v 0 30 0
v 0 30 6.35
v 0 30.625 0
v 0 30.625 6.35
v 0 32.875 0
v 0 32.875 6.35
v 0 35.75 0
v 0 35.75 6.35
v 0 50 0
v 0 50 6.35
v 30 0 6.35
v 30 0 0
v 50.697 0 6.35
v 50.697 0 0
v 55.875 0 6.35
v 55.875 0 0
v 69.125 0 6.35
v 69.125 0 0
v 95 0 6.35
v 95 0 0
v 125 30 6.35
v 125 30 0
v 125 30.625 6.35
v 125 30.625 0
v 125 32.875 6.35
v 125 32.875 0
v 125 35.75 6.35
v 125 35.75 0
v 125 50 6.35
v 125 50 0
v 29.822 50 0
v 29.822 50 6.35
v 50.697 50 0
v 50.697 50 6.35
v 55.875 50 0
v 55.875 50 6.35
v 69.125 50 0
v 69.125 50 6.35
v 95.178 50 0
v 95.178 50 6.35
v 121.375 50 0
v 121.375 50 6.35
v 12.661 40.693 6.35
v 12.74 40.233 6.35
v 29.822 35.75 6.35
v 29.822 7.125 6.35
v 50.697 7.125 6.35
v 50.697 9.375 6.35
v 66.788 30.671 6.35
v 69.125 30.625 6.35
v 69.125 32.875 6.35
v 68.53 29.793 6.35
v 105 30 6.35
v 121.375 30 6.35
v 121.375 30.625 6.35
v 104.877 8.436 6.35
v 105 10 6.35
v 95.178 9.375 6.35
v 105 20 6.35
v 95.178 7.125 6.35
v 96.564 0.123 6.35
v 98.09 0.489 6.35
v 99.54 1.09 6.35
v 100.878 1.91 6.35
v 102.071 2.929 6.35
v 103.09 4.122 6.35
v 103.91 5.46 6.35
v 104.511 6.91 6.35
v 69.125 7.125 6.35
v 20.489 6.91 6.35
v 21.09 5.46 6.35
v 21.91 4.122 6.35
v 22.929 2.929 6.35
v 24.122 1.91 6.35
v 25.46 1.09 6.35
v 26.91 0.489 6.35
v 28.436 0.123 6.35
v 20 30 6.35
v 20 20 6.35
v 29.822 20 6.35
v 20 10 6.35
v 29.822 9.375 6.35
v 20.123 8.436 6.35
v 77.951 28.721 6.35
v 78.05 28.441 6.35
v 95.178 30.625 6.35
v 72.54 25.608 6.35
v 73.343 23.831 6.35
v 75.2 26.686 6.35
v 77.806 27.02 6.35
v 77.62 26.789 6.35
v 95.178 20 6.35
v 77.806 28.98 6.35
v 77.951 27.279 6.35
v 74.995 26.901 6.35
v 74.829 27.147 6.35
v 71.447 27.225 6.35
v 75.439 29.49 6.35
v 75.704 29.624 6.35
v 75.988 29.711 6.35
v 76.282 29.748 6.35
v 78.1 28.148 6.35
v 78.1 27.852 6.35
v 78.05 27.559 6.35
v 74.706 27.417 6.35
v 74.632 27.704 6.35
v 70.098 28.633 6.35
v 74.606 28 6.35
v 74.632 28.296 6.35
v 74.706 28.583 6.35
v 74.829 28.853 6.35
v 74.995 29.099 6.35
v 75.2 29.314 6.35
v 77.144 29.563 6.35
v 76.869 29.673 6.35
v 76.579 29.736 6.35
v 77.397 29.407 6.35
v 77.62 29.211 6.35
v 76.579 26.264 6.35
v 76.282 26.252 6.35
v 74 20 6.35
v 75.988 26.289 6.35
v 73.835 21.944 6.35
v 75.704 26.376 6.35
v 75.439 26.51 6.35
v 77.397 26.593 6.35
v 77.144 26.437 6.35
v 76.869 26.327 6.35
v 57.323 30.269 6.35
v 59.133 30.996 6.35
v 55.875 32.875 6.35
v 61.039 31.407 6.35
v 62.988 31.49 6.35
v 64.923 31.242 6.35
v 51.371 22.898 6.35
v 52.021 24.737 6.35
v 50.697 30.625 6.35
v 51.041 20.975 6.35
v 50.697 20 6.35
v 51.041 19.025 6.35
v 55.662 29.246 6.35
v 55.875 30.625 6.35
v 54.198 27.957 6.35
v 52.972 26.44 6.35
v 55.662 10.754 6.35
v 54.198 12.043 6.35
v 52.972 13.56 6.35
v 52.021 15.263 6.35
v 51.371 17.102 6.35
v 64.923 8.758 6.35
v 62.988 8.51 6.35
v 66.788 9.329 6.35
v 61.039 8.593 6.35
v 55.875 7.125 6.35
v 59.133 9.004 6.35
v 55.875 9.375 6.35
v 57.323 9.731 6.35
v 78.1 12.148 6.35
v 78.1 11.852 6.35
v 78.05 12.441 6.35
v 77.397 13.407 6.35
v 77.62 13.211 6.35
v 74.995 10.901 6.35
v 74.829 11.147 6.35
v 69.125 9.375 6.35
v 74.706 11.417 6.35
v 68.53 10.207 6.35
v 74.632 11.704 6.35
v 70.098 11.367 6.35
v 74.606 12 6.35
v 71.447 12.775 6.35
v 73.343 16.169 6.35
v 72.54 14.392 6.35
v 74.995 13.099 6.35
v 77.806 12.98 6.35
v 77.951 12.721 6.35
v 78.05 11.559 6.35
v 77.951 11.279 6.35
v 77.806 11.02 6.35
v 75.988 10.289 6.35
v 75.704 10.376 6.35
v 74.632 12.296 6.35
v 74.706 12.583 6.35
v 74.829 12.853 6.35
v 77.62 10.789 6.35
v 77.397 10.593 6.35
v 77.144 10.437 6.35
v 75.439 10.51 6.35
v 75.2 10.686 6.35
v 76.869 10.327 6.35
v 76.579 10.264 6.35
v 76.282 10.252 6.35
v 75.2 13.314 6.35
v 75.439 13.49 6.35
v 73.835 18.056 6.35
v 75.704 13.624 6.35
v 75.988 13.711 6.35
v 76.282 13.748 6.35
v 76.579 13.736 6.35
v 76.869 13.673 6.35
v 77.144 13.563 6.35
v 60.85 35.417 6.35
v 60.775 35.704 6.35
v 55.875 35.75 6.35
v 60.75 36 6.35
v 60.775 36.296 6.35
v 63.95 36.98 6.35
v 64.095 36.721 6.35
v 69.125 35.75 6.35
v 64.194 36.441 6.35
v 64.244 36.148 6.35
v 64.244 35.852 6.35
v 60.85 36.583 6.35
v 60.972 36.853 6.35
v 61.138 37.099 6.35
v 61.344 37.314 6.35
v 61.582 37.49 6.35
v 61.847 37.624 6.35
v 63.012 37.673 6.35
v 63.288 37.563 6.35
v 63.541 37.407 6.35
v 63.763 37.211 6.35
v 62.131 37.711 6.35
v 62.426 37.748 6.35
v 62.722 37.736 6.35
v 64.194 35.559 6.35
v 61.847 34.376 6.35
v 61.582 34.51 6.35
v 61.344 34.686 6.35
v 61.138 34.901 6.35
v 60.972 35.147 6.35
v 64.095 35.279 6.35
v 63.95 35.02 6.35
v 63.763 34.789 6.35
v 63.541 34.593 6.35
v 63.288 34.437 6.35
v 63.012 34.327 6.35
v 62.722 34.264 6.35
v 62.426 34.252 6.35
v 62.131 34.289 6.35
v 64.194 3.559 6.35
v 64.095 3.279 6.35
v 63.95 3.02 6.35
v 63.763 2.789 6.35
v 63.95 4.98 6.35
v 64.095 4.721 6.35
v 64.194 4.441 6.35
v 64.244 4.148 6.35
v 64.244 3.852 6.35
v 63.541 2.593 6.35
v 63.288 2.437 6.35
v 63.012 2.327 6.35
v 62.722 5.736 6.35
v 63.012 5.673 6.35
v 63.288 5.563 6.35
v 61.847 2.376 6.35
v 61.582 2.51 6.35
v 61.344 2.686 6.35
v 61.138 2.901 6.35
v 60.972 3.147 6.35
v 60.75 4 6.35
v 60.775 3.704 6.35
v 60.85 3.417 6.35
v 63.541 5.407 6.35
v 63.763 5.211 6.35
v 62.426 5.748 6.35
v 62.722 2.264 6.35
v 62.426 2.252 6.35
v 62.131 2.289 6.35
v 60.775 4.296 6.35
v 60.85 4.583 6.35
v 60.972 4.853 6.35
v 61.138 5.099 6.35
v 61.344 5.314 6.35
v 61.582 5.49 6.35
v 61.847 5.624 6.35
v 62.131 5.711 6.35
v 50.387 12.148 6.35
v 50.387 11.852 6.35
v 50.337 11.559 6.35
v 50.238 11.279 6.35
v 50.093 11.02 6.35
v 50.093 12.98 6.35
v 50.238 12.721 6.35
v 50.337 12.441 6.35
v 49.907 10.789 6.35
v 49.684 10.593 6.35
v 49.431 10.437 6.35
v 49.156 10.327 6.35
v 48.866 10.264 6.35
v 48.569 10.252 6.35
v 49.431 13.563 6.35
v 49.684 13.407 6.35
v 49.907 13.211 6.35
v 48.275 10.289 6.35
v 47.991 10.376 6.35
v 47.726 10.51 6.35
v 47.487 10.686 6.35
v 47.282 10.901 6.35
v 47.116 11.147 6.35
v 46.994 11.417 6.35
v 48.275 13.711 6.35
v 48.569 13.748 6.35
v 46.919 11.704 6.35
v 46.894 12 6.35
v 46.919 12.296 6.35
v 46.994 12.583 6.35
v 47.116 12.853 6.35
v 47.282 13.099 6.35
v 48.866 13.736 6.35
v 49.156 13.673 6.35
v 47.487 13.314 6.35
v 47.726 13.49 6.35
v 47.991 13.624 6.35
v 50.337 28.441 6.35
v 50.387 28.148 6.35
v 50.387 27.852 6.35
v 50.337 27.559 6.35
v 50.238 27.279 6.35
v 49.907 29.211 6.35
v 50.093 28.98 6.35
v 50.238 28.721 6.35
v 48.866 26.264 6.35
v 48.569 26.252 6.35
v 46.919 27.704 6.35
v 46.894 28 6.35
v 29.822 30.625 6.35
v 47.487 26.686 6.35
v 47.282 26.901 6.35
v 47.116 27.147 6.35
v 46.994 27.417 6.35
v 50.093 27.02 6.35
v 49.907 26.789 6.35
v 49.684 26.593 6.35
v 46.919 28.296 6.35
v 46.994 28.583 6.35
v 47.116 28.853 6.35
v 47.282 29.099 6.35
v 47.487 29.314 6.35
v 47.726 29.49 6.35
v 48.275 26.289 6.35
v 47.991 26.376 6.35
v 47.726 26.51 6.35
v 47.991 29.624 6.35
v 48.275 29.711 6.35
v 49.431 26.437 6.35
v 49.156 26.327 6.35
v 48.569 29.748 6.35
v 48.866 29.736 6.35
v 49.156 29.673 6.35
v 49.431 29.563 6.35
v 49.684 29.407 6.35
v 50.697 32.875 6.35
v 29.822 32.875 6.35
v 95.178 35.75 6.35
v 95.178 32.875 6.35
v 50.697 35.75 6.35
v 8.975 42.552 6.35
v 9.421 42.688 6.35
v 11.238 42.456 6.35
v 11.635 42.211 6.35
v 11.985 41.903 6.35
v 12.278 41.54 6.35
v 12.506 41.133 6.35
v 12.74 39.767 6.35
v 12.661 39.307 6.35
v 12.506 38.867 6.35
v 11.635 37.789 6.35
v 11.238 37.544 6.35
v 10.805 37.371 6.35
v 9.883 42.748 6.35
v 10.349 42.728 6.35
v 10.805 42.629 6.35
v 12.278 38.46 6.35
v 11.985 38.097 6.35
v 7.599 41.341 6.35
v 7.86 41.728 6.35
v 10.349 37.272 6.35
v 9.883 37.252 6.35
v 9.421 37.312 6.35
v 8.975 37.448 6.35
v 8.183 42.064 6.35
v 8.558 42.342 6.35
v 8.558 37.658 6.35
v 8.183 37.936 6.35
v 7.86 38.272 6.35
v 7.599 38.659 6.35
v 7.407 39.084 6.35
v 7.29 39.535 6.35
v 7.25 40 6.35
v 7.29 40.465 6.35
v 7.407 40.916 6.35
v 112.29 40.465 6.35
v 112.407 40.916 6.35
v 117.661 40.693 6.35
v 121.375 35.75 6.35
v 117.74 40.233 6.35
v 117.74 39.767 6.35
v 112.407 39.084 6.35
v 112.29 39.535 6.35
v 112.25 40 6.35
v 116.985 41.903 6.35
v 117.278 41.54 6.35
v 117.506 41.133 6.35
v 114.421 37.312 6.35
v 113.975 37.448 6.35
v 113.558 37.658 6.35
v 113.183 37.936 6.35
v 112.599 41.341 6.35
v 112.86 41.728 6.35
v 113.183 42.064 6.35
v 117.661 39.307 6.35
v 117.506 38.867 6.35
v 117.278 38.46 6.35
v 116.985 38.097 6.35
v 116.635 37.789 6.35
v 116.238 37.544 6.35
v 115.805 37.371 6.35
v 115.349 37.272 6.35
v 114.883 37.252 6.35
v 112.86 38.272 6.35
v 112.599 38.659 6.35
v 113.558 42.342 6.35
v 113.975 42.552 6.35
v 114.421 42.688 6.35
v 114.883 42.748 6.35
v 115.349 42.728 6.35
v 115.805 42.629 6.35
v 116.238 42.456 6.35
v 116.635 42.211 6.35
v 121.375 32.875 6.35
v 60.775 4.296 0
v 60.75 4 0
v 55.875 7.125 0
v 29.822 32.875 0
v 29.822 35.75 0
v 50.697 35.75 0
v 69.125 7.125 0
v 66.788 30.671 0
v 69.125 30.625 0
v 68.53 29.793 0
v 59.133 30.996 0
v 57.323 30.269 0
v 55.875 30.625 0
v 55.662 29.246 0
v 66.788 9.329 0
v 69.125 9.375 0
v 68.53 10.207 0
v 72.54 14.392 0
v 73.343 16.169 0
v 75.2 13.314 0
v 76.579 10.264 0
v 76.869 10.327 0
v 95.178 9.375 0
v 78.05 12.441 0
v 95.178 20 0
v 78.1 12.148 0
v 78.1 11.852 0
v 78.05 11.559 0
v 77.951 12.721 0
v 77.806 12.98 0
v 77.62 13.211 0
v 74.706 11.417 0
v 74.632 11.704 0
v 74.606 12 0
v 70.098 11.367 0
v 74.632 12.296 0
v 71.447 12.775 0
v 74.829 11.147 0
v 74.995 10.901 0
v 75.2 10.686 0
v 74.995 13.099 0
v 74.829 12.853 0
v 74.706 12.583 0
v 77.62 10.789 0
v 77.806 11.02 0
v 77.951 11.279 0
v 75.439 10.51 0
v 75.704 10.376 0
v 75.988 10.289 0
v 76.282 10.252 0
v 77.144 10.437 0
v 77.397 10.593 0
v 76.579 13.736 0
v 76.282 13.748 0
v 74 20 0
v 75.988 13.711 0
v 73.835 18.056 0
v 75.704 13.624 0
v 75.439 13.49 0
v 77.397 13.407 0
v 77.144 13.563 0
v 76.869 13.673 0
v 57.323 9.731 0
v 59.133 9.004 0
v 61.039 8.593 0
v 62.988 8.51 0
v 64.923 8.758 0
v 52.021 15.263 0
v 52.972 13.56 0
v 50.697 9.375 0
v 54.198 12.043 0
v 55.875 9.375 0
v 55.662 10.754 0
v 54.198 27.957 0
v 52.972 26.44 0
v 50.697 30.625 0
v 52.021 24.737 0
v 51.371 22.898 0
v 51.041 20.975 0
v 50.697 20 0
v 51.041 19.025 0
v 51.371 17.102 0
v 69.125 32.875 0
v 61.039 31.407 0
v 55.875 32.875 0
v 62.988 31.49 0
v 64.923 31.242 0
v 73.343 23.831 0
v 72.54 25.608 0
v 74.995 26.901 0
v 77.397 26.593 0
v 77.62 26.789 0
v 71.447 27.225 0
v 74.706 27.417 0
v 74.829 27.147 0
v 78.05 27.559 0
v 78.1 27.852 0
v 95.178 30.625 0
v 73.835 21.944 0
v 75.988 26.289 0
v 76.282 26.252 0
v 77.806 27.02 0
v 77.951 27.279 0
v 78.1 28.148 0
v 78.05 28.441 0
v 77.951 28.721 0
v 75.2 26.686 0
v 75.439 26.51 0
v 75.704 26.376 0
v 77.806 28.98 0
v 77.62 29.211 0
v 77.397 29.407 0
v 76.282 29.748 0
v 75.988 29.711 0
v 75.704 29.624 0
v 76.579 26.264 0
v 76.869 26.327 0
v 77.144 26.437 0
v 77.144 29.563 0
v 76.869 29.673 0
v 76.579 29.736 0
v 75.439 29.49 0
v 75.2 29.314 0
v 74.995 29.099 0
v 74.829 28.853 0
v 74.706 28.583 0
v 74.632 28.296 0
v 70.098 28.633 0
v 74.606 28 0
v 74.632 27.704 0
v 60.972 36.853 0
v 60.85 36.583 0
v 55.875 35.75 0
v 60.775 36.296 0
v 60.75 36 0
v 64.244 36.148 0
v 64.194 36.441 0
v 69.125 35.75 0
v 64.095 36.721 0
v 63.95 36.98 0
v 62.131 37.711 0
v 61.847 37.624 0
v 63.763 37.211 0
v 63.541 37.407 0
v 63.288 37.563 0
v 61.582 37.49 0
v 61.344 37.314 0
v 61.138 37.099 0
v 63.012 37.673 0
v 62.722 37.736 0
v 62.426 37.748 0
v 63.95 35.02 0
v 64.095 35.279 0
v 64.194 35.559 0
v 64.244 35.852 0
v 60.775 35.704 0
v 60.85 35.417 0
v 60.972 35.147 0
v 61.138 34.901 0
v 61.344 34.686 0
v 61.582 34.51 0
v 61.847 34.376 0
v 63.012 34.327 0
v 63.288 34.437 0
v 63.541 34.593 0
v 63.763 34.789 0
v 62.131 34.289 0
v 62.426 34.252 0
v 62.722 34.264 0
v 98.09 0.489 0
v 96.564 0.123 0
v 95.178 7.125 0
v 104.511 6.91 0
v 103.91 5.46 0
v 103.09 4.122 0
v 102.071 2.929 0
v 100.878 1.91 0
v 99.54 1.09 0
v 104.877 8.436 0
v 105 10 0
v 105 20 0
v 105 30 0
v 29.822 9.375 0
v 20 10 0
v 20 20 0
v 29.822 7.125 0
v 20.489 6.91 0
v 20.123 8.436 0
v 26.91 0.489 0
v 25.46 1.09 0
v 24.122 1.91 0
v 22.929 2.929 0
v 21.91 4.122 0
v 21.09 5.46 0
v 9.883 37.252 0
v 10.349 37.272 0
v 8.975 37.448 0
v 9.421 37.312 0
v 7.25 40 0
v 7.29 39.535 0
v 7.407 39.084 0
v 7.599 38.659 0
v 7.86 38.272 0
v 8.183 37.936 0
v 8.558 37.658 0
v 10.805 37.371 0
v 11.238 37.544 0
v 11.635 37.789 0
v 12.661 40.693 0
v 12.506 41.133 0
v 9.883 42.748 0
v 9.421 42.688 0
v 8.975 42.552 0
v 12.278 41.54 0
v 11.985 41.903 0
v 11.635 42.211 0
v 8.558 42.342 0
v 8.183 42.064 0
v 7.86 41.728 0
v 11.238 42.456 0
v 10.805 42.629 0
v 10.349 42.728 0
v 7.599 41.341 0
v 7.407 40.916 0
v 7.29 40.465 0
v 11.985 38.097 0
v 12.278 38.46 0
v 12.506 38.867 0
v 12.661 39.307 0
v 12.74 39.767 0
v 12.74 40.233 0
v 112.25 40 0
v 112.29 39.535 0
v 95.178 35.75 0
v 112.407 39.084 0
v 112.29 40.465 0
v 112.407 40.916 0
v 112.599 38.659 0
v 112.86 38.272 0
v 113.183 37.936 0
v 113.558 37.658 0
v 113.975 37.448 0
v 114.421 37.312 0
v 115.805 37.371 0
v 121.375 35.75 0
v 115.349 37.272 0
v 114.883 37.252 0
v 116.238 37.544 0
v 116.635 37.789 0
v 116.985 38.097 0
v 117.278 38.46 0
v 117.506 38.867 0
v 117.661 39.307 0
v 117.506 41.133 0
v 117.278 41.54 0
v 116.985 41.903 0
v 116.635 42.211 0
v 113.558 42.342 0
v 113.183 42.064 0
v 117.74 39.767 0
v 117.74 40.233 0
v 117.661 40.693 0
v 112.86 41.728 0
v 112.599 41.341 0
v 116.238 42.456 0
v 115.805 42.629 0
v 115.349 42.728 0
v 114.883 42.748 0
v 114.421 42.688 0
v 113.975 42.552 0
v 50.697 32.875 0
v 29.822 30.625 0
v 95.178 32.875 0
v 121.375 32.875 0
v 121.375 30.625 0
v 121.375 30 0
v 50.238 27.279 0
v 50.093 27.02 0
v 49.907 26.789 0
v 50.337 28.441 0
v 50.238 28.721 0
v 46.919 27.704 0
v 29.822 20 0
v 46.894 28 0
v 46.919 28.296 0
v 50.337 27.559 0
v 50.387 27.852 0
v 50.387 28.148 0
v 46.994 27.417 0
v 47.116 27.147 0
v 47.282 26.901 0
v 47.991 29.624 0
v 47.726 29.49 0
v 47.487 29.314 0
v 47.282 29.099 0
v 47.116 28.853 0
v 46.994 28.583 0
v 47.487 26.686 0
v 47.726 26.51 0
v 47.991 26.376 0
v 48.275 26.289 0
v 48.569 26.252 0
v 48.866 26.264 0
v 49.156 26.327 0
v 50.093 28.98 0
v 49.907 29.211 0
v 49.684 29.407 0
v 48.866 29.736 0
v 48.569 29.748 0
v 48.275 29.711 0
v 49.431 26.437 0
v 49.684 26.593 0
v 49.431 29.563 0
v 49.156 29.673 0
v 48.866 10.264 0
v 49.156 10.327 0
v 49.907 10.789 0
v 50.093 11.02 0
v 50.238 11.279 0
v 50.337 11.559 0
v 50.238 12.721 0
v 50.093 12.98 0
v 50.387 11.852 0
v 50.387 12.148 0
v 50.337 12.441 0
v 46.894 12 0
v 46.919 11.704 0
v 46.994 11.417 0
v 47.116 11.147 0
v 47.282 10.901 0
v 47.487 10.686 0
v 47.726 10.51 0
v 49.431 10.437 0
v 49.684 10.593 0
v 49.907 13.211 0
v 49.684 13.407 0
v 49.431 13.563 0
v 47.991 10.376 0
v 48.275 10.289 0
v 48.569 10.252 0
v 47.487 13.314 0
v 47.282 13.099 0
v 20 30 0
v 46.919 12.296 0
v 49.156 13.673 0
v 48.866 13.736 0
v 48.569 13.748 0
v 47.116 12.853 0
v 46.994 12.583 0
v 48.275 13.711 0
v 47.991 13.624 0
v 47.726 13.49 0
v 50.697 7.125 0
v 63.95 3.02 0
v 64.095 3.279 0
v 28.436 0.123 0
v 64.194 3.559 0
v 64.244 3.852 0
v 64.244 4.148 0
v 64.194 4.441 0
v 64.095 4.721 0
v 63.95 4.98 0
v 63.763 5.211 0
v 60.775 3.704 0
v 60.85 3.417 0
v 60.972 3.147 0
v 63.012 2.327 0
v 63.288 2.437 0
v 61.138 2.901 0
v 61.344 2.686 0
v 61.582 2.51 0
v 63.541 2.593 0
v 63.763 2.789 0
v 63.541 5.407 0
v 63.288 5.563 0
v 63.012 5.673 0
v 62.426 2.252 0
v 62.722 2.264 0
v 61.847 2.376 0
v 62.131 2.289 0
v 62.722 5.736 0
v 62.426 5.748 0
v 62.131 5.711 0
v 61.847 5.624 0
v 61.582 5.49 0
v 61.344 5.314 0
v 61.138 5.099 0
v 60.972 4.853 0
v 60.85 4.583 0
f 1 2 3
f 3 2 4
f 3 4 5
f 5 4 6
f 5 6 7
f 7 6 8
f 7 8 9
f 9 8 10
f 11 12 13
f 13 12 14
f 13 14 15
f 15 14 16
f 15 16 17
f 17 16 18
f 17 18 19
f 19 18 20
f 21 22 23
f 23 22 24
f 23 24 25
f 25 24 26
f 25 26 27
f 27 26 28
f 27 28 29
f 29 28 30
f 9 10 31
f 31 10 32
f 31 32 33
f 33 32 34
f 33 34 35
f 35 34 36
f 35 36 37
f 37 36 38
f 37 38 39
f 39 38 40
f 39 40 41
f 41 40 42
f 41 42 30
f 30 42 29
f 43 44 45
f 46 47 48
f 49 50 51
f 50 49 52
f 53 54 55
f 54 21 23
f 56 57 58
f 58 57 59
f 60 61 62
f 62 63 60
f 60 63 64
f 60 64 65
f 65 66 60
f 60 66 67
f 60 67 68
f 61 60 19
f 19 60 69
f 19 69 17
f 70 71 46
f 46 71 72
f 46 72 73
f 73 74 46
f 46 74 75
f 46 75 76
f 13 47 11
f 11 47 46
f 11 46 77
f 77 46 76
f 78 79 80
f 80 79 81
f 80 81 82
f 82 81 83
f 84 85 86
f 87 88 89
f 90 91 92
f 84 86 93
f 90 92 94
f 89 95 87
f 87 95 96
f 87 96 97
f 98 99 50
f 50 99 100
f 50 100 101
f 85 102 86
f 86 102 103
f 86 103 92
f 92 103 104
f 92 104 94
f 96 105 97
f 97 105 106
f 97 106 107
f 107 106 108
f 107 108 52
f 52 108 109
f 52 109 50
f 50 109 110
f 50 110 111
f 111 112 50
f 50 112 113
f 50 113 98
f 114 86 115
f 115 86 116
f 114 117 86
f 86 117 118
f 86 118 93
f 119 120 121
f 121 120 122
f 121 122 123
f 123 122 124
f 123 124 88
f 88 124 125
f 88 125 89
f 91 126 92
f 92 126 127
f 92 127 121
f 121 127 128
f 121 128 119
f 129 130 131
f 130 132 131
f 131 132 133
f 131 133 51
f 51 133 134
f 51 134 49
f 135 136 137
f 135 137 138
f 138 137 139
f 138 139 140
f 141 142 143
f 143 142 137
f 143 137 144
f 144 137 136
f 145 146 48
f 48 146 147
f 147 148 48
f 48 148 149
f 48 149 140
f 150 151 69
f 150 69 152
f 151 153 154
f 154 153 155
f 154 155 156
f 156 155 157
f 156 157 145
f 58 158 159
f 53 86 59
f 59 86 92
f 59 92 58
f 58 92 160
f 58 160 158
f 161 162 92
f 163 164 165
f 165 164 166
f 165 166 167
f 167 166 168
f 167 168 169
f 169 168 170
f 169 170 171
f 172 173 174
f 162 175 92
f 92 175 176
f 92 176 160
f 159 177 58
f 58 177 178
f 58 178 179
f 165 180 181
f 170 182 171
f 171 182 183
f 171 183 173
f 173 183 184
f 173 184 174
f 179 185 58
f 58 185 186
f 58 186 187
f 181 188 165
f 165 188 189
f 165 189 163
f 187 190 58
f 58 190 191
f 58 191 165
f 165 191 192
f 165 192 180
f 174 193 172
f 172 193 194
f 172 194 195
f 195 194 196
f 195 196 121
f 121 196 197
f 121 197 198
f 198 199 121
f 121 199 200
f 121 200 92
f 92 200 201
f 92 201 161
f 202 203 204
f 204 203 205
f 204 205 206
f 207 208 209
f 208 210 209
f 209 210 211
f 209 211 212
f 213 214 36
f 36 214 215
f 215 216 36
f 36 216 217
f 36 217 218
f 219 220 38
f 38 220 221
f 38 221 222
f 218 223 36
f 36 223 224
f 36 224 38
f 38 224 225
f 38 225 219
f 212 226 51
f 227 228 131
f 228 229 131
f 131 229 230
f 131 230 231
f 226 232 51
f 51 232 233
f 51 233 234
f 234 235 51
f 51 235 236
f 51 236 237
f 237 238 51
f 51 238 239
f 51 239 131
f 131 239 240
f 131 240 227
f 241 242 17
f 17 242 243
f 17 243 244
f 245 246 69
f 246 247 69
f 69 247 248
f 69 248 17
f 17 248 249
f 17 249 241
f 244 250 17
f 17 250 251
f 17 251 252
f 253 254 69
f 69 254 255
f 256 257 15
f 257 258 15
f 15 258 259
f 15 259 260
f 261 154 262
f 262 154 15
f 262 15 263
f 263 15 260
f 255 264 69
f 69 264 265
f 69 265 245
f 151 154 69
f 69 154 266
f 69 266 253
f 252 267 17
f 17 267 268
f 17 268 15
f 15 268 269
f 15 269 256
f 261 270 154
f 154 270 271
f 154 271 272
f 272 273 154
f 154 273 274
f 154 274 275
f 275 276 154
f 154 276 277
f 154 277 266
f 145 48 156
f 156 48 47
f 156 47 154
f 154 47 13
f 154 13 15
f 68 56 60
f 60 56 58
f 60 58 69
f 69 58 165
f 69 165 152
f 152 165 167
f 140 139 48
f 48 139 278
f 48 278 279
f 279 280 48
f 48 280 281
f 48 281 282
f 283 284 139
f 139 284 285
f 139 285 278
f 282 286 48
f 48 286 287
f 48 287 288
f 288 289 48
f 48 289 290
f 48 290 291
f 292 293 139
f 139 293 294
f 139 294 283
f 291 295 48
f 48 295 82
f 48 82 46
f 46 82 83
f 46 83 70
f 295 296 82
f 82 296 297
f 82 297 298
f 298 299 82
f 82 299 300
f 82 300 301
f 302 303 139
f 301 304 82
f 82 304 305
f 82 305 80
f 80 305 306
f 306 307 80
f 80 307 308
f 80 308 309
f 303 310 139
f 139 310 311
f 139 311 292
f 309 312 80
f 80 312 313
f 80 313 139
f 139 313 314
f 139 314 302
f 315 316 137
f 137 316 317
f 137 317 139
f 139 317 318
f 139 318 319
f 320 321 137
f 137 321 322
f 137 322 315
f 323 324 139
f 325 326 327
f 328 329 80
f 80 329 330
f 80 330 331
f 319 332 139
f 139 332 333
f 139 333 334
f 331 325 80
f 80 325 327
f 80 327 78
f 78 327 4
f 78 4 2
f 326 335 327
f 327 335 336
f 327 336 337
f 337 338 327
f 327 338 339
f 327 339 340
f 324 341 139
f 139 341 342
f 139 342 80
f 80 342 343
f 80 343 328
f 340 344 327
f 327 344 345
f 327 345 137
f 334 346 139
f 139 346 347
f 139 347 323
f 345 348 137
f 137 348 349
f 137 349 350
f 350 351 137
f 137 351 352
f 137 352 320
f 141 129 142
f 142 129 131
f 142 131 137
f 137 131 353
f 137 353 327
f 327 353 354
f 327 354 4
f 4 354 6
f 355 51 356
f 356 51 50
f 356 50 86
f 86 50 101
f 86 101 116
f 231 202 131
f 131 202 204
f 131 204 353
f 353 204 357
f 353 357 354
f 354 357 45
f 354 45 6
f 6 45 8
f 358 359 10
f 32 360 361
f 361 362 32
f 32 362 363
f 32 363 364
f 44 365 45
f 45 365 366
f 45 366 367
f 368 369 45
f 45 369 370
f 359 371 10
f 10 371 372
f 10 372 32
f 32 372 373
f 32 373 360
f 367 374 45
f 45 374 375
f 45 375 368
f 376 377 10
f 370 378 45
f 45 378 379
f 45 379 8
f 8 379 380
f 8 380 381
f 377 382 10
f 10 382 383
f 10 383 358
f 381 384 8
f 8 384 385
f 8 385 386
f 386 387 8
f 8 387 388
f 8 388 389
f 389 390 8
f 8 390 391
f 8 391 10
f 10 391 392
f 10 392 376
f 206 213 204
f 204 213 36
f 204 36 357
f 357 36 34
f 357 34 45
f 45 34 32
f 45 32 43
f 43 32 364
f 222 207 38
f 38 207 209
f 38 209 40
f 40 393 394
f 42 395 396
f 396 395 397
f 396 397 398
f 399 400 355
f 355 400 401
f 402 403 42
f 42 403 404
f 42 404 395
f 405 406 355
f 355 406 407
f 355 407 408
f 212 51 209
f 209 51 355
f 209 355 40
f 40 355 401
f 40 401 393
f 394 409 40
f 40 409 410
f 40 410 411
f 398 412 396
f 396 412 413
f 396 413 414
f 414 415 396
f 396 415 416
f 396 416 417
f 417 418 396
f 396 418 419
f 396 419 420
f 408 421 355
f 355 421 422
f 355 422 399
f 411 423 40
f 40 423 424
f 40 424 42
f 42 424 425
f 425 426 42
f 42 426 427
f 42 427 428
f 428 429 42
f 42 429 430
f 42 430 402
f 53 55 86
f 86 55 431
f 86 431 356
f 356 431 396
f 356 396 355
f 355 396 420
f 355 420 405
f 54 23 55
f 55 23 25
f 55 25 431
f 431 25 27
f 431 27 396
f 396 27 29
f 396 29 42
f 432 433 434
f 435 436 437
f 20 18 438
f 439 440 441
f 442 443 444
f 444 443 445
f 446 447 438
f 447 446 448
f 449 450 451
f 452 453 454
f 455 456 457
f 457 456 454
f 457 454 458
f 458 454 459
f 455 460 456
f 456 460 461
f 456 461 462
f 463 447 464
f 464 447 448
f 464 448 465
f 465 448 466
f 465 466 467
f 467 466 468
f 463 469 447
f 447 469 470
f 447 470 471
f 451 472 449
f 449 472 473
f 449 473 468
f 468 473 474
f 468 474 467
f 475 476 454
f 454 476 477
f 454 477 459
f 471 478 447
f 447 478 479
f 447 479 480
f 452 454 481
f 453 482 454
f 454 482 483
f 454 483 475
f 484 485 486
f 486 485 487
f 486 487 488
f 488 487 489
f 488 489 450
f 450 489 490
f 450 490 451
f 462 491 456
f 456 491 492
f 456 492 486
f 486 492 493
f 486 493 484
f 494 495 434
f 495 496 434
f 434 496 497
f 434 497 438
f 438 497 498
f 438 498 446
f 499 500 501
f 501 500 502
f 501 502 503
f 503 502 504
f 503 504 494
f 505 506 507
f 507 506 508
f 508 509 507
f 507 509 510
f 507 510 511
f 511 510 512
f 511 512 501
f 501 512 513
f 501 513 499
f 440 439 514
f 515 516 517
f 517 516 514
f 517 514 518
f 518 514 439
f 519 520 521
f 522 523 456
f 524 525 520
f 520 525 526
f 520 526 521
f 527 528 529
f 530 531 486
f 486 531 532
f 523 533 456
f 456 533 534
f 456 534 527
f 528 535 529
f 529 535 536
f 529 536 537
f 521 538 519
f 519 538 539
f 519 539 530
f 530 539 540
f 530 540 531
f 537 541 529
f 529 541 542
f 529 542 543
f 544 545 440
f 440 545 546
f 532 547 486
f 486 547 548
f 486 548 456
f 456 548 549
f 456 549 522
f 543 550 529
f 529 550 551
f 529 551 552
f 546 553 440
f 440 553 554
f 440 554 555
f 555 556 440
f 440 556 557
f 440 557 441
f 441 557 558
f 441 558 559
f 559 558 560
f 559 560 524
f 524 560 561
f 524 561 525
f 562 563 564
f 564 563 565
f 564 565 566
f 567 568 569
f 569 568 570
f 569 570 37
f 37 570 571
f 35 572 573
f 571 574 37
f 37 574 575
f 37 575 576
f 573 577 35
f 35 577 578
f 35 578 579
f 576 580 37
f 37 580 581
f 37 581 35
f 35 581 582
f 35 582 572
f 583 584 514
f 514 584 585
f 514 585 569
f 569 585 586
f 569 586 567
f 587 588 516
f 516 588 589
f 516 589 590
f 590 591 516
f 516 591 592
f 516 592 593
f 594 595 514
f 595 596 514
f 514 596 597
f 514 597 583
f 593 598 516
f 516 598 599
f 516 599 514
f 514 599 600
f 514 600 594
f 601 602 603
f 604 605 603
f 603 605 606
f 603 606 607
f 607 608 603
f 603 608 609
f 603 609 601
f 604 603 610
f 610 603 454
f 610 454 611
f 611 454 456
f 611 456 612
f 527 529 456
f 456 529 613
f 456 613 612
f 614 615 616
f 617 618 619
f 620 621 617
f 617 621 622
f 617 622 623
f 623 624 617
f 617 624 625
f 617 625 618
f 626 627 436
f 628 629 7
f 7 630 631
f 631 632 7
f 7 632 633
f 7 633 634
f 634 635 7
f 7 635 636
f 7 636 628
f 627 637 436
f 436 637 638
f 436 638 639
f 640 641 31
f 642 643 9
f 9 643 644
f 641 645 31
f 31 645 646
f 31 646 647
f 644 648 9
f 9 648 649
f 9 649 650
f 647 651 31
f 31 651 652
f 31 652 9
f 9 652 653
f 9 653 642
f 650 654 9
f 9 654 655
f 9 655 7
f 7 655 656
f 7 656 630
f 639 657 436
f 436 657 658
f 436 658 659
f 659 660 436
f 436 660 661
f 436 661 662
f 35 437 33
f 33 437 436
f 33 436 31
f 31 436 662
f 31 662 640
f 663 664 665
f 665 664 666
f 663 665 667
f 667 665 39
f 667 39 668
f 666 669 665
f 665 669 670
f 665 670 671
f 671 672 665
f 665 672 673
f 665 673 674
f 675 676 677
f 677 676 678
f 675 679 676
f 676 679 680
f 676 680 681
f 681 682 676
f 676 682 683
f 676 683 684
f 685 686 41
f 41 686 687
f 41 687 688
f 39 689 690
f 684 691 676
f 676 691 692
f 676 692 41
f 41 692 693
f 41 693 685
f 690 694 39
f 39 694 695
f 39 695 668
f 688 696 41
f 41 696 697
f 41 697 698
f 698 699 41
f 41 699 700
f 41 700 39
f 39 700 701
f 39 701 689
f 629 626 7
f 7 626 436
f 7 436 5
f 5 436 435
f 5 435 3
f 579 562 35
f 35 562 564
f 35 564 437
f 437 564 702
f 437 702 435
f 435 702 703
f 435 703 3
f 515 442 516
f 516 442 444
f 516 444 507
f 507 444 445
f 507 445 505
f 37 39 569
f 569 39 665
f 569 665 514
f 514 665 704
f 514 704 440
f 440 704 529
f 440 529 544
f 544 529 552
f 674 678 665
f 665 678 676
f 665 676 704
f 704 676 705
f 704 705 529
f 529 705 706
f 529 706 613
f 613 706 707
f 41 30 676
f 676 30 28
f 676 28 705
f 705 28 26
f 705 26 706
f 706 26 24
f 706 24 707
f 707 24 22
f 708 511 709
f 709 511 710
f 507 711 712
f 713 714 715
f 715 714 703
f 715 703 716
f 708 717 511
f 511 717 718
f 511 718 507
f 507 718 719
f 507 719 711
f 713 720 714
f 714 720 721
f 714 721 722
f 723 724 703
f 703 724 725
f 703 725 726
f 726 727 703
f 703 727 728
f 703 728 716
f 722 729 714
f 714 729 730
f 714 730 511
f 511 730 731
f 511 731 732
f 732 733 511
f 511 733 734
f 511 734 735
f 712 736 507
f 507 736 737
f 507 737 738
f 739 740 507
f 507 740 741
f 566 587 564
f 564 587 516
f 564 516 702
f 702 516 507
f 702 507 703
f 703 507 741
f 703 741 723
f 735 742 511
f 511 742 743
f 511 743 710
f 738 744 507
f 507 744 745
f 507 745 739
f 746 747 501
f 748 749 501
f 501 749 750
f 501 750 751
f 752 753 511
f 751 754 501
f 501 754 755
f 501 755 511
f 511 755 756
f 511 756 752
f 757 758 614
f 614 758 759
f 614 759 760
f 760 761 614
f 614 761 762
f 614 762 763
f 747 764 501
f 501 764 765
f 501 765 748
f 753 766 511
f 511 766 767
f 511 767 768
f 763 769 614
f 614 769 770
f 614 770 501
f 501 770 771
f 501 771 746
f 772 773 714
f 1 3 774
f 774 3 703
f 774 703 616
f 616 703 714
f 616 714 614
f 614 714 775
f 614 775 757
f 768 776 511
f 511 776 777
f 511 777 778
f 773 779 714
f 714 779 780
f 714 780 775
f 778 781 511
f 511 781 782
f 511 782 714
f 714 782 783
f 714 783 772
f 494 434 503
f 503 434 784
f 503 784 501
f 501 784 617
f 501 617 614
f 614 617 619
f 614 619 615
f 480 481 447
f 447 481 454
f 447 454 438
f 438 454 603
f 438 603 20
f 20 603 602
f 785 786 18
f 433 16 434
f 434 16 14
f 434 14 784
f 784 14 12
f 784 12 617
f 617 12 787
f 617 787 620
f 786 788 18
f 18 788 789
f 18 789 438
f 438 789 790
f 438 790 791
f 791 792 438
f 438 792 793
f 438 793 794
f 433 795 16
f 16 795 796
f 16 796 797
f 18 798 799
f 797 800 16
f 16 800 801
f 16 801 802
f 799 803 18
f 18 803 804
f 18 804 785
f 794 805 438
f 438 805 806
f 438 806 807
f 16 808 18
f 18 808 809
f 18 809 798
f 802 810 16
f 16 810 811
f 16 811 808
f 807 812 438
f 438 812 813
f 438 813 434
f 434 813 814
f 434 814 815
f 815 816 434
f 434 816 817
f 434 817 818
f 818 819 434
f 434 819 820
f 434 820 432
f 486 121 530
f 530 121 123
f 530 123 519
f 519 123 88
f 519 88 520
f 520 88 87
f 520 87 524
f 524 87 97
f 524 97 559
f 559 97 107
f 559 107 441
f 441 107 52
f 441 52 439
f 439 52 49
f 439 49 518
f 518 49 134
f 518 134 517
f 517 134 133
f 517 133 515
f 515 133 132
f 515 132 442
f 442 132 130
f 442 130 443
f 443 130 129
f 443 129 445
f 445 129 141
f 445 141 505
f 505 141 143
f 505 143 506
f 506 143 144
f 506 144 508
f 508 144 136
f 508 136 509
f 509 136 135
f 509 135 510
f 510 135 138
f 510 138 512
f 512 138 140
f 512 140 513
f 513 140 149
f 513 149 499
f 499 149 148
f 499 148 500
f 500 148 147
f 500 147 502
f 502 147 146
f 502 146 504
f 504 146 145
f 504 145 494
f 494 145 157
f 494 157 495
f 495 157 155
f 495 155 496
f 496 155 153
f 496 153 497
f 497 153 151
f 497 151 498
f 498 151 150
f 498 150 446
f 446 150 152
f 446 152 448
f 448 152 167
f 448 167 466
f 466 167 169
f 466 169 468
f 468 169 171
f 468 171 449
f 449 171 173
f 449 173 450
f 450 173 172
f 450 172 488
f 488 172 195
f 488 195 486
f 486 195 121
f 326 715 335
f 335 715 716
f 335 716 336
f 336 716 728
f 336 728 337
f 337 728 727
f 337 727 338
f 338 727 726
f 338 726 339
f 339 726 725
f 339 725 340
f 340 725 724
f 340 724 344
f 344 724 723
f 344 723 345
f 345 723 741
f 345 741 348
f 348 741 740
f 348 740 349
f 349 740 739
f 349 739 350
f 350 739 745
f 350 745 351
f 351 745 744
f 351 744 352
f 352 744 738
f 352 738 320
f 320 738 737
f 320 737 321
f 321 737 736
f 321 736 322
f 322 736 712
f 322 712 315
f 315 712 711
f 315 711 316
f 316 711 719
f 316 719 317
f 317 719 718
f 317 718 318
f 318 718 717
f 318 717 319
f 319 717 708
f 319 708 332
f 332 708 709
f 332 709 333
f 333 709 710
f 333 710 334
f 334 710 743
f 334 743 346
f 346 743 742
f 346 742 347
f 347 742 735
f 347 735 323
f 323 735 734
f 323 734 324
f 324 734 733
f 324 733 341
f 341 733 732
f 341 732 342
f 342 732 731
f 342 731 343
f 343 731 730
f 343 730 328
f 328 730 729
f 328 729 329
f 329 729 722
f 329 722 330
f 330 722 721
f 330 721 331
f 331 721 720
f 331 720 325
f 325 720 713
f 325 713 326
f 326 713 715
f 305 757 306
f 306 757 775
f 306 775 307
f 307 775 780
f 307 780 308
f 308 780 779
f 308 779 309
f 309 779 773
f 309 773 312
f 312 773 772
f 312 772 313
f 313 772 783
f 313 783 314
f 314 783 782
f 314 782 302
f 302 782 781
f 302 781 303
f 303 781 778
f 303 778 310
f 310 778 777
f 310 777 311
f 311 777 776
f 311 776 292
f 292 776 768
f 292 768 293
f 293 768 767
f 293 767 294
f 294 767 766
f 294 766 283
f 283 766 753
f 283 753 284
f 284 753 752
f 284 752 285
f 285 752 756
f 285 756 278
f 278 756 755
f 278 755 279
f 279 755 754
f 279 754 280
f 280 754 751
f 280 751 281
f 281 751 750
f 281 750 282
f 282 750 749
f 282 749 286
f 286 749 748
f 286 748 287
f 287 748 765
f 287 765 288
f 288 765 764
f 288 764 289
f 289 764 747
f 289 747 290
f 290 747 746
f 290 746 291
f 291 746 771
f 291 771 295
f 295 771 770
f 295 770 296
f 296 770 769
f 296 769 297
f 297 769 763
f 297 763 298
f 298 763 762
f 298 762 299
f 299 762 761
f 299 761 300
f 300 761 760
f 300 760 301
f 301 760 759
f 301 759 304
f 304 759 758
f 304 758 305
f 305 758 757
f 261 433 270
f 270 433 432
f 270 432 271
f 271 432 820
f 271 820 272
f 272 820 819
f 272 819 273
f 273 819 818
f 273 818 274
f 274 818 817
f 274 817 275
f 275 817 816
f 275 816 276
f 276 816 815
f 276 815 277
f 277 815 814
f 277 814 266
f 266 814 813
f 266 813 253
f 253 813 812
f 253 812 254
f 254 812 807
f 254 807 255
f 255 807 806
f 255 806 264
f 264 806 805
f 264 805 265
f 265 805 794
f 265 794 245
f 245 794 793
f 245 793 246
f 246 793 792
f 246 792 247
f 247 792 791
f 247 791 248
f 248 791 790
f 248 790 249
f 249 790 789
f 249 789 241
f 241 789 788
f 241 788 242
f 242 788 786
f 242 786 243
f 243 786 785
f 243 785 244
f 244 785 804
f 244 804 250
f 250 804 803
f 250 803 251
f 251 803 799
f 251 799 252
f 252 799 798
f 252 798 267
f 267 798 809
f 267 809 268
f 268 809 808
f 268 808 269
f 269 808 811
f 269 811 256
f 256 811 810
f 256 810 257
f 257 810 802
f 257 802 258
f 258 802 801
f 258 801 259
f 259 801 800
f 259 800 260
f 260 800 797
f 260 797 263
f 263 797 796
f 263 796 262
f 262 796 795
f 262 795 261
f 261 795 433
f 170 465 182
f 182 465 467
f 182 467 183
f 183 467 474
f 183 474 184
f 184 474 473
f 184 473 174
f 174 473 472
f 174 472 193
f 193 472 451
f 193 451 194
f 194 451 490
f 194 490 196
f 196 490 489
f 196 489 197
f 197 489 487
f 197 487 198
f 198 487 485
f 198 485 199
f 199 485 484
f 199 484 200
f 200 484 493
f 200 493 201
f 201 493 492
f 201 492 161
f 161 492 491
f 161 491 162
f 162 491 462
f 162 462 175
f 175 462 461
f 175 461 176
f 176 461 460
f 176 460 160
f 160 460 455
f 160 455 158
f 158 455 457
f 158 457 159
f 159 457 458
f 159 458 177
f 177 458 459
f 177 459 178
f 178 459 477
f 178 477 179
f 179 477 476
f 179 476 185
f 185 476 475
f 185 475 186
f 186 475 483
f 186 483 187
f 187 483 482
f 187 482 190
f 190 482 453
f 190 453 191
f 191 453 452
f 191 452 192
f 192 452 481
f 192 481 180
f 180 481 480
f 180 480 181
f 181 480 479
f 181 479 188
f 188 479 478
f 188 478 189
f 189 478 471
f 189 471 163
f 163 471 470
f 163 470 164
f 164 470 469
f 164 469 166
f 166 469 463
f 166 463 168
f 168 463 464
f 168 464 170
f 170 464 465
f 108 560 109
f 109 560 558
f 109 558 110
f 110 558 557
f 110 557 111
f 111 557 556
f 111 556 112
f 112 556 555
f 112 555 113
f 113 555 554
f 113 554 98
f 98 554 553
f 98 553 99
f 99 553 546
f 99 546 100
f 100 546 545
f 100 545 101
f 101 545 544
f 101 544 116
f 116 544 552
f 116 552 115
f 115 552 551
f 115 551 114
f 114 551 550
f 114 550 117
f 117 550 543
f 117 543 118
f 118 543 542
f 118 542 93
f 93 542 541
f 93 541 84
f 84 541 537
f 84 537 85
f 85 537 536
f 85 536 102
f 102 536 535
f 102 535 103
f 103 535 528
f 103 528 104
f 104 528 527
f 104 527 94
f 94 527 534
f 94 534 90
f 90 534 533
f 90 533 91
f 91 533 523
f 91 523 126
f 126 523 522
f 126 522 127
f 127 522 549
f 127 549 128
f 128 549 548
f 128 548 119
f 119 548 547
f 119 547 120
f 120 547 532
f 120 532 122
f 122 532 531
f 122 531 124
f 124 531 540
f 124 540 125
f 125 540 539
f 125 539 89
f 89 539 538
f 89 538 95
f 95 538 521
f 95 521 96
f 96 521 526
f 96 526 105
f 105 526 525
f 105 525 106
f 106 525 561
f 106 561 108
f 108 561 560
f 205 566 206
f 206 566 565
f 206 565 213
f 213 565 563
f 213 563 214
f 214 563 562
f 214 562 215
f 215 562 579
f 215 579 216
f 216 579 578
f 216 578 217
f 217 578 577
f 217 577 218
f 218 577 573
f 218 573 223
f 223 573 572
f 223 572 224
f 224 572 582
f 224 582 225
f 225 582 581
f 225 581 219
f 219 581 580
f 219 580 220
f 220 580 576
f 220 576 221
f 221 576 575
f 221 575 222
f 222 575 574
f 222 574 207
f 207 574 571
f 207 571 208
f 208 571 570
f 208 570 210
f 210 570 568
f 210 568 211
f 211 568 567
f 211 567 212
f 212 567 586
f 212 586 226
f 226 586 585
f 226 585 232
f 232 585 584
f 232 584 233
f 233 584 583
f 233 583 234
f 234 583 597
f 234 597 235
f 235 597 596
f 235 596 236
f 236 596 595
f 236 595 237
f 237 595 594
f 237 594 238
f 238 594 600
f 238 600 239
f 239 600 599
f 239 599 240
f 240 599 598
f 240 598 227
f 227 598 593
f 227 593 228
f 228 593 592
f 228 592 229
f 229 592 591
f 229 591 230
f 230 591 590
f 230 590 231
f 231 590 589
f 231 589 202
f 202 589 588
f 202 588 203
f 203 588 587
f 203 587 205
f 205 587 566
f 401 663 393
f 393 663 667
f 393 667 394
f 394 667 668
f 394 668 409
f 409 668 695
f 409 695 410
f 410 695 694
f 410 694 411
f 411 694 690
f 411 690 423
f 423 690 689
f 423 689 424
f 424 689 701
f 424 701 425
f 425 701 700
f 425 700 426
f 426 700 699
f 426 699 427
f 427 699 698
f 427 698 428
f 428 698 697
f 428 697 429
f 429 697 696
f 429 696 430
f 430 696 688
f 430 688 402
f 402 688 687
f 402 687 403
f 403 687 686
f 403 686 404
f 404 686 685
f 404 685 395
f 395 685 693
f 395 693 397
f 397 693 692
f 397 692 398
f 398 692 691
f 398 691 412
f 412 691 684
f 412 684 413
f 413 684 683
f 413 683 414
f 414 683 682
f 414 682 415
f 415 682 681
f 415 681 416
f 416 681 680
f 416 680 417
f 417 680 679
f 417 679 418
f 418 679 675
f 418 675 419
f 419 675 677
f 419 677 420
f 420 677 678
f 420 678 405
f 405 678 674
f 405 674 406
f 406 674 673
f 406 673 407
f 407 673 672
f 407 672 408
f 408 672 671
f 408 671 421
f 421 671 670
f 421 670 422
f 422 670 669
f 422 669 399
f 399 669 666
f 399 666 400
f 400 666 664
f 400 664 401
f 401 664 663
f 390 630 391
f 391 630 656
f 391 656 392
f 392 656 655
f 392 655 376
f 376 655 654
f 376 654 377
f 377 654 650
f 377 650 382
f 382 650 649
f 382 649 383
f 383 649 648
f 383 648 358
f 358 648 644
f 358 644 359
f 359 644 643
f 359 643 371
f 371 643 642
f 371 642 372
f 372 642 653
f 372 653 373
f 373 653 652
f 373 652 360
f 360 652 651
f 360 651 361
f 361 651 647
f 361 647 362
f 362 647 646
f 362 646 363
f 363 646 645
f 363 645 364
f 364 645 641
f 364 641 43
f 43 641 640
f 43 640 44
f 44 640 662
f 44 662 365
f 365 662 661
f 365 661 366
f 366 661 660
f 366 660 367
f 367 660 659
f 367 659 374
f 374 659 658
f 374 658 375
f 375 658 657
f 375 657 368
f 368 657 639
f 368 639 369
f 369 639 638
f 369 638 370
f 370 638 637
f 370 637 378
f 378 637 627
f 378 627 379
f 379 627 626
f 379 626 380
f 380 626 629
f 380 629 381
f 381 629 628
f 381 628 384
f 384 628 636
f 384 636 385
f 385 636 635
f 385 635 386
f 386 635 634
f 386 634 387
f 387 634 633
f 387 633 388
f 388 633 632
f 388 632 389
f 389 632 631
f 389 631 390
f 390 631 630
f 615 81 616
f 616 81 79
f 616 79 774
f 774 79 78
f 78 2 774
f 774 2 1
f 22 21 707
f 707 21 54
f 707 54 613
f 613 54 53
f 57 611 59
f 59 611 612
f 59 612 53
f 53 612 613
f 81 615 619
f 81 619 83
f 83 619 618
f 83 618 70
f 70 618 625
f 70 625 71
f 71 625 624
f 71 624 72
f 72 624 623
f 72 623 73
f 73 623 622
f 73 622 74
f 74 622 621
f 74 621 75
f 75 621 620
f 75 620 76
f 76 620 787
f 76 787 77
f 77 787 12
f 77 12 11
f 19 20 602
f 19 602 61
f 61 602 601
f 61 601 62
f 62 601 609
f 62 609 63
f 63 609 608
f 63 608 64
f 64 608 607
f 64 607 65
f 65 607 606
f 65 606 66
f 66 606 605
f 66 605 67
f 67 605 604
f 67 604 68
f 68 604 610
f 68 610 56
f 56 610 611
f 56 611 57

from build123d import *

# Parameters (mm, degrees)
SKETCH1_W           = 125
SKETCH1_H           = 50
BOSS_EXTRUDE1_DEPTH = 6.35
SKETCH2_R           = 11.5
CUT_EXTRUDE1_DEPTH  = 7.35
SKETCH5_R           = 1.75
CUT_EXTRUDE5_DEPTH  = 7.35
SKETCH6_R           = 2.75
SKETCH6_W           = 20
SKETCH6_H           = 30
CUT_EXTRUDE6_DEPTH  = 7.35
FILLET1_R           = 10


with BuildPart() as part:
    # Sketch1 → Boss-Extrude1 (new body)
    with BuildSketch(Plane.XY):
        with Locations((62.5, 25)):
            Rectangle(SKETCH1_W, SKETCH1_H)
    extrude(amount=BOSS_EXTRUDE1_DEPTH)

    # Sketch2 → Cut-Extrude1 (cut, through all)
    with BuildSketch(Plane.XY.offset(6.35)):
        with Locations((62.5, 20)):
            Circle(SKETCH2_R)
    extrude(amount=-CUT_EXTRUDE1_DEPTH, mode=Mode.SUBTRACT)

    # Sketch5 → Cut-Extrude5 (cut, through all)
    with BuildSketch(Plane(origin=(0, 0, 0), x_dir=(-1, 0, 0), z_dir=(0, 0, -1))):
        with Locations((-48.643593539, 28)):
            Circle(SKETCH5_R)
        with Locations((-48.643593539, 12)):
            Circle(SKETCH5_R)
        with Locations((-62.5, 4)):
            Circle(SKETCH5_R)
        with Locations((-76.356406461, 12)):
            Circle(SKETCH5_R)
        with Locations((-76.356406461, 28)):
            Circle(SKETCH5_R)
        with Locations((-62.5, 36)):
            Circle(SKETCH5_R)
    extrude(amount=-CUT_EXTRUDE5_DEPTH, mode=Mode.SUBTRACT)

    # Sketch6 → Cut-Extrude6 (cut, through all)
    with BuildSketch(Plane(origin=(0, 0, 0), x_dir=(-1, 0, 0), z_dir=(0, 0, -1))):
        with Locations((-115, 40)):
            Circle(SKETCH6_R)
        with Locations((-10, 40)):
            Circle(SKETCH6_R)
        with Locations((-115, 15)):
            Rectangle(SKETCH6_W, SKETCH6_H)
        with Locations((-10, 15)):
            Rectangle(SKETCH6_W, SKETCH6_H)
    extrude(amount=-CUT_EXTRUDE6_DEPTH, mode=Mode.SUBTRACT)

    # Fillet1
    fillet1_edges = [part.edges().sort_by_distance(p)[0] for p in [
        (105, 0, 3.175),
        (20, 0, 3.175),
    ]]
    fillet(fillet1_edges, radius=FILLET1_R)


solid = part.part
